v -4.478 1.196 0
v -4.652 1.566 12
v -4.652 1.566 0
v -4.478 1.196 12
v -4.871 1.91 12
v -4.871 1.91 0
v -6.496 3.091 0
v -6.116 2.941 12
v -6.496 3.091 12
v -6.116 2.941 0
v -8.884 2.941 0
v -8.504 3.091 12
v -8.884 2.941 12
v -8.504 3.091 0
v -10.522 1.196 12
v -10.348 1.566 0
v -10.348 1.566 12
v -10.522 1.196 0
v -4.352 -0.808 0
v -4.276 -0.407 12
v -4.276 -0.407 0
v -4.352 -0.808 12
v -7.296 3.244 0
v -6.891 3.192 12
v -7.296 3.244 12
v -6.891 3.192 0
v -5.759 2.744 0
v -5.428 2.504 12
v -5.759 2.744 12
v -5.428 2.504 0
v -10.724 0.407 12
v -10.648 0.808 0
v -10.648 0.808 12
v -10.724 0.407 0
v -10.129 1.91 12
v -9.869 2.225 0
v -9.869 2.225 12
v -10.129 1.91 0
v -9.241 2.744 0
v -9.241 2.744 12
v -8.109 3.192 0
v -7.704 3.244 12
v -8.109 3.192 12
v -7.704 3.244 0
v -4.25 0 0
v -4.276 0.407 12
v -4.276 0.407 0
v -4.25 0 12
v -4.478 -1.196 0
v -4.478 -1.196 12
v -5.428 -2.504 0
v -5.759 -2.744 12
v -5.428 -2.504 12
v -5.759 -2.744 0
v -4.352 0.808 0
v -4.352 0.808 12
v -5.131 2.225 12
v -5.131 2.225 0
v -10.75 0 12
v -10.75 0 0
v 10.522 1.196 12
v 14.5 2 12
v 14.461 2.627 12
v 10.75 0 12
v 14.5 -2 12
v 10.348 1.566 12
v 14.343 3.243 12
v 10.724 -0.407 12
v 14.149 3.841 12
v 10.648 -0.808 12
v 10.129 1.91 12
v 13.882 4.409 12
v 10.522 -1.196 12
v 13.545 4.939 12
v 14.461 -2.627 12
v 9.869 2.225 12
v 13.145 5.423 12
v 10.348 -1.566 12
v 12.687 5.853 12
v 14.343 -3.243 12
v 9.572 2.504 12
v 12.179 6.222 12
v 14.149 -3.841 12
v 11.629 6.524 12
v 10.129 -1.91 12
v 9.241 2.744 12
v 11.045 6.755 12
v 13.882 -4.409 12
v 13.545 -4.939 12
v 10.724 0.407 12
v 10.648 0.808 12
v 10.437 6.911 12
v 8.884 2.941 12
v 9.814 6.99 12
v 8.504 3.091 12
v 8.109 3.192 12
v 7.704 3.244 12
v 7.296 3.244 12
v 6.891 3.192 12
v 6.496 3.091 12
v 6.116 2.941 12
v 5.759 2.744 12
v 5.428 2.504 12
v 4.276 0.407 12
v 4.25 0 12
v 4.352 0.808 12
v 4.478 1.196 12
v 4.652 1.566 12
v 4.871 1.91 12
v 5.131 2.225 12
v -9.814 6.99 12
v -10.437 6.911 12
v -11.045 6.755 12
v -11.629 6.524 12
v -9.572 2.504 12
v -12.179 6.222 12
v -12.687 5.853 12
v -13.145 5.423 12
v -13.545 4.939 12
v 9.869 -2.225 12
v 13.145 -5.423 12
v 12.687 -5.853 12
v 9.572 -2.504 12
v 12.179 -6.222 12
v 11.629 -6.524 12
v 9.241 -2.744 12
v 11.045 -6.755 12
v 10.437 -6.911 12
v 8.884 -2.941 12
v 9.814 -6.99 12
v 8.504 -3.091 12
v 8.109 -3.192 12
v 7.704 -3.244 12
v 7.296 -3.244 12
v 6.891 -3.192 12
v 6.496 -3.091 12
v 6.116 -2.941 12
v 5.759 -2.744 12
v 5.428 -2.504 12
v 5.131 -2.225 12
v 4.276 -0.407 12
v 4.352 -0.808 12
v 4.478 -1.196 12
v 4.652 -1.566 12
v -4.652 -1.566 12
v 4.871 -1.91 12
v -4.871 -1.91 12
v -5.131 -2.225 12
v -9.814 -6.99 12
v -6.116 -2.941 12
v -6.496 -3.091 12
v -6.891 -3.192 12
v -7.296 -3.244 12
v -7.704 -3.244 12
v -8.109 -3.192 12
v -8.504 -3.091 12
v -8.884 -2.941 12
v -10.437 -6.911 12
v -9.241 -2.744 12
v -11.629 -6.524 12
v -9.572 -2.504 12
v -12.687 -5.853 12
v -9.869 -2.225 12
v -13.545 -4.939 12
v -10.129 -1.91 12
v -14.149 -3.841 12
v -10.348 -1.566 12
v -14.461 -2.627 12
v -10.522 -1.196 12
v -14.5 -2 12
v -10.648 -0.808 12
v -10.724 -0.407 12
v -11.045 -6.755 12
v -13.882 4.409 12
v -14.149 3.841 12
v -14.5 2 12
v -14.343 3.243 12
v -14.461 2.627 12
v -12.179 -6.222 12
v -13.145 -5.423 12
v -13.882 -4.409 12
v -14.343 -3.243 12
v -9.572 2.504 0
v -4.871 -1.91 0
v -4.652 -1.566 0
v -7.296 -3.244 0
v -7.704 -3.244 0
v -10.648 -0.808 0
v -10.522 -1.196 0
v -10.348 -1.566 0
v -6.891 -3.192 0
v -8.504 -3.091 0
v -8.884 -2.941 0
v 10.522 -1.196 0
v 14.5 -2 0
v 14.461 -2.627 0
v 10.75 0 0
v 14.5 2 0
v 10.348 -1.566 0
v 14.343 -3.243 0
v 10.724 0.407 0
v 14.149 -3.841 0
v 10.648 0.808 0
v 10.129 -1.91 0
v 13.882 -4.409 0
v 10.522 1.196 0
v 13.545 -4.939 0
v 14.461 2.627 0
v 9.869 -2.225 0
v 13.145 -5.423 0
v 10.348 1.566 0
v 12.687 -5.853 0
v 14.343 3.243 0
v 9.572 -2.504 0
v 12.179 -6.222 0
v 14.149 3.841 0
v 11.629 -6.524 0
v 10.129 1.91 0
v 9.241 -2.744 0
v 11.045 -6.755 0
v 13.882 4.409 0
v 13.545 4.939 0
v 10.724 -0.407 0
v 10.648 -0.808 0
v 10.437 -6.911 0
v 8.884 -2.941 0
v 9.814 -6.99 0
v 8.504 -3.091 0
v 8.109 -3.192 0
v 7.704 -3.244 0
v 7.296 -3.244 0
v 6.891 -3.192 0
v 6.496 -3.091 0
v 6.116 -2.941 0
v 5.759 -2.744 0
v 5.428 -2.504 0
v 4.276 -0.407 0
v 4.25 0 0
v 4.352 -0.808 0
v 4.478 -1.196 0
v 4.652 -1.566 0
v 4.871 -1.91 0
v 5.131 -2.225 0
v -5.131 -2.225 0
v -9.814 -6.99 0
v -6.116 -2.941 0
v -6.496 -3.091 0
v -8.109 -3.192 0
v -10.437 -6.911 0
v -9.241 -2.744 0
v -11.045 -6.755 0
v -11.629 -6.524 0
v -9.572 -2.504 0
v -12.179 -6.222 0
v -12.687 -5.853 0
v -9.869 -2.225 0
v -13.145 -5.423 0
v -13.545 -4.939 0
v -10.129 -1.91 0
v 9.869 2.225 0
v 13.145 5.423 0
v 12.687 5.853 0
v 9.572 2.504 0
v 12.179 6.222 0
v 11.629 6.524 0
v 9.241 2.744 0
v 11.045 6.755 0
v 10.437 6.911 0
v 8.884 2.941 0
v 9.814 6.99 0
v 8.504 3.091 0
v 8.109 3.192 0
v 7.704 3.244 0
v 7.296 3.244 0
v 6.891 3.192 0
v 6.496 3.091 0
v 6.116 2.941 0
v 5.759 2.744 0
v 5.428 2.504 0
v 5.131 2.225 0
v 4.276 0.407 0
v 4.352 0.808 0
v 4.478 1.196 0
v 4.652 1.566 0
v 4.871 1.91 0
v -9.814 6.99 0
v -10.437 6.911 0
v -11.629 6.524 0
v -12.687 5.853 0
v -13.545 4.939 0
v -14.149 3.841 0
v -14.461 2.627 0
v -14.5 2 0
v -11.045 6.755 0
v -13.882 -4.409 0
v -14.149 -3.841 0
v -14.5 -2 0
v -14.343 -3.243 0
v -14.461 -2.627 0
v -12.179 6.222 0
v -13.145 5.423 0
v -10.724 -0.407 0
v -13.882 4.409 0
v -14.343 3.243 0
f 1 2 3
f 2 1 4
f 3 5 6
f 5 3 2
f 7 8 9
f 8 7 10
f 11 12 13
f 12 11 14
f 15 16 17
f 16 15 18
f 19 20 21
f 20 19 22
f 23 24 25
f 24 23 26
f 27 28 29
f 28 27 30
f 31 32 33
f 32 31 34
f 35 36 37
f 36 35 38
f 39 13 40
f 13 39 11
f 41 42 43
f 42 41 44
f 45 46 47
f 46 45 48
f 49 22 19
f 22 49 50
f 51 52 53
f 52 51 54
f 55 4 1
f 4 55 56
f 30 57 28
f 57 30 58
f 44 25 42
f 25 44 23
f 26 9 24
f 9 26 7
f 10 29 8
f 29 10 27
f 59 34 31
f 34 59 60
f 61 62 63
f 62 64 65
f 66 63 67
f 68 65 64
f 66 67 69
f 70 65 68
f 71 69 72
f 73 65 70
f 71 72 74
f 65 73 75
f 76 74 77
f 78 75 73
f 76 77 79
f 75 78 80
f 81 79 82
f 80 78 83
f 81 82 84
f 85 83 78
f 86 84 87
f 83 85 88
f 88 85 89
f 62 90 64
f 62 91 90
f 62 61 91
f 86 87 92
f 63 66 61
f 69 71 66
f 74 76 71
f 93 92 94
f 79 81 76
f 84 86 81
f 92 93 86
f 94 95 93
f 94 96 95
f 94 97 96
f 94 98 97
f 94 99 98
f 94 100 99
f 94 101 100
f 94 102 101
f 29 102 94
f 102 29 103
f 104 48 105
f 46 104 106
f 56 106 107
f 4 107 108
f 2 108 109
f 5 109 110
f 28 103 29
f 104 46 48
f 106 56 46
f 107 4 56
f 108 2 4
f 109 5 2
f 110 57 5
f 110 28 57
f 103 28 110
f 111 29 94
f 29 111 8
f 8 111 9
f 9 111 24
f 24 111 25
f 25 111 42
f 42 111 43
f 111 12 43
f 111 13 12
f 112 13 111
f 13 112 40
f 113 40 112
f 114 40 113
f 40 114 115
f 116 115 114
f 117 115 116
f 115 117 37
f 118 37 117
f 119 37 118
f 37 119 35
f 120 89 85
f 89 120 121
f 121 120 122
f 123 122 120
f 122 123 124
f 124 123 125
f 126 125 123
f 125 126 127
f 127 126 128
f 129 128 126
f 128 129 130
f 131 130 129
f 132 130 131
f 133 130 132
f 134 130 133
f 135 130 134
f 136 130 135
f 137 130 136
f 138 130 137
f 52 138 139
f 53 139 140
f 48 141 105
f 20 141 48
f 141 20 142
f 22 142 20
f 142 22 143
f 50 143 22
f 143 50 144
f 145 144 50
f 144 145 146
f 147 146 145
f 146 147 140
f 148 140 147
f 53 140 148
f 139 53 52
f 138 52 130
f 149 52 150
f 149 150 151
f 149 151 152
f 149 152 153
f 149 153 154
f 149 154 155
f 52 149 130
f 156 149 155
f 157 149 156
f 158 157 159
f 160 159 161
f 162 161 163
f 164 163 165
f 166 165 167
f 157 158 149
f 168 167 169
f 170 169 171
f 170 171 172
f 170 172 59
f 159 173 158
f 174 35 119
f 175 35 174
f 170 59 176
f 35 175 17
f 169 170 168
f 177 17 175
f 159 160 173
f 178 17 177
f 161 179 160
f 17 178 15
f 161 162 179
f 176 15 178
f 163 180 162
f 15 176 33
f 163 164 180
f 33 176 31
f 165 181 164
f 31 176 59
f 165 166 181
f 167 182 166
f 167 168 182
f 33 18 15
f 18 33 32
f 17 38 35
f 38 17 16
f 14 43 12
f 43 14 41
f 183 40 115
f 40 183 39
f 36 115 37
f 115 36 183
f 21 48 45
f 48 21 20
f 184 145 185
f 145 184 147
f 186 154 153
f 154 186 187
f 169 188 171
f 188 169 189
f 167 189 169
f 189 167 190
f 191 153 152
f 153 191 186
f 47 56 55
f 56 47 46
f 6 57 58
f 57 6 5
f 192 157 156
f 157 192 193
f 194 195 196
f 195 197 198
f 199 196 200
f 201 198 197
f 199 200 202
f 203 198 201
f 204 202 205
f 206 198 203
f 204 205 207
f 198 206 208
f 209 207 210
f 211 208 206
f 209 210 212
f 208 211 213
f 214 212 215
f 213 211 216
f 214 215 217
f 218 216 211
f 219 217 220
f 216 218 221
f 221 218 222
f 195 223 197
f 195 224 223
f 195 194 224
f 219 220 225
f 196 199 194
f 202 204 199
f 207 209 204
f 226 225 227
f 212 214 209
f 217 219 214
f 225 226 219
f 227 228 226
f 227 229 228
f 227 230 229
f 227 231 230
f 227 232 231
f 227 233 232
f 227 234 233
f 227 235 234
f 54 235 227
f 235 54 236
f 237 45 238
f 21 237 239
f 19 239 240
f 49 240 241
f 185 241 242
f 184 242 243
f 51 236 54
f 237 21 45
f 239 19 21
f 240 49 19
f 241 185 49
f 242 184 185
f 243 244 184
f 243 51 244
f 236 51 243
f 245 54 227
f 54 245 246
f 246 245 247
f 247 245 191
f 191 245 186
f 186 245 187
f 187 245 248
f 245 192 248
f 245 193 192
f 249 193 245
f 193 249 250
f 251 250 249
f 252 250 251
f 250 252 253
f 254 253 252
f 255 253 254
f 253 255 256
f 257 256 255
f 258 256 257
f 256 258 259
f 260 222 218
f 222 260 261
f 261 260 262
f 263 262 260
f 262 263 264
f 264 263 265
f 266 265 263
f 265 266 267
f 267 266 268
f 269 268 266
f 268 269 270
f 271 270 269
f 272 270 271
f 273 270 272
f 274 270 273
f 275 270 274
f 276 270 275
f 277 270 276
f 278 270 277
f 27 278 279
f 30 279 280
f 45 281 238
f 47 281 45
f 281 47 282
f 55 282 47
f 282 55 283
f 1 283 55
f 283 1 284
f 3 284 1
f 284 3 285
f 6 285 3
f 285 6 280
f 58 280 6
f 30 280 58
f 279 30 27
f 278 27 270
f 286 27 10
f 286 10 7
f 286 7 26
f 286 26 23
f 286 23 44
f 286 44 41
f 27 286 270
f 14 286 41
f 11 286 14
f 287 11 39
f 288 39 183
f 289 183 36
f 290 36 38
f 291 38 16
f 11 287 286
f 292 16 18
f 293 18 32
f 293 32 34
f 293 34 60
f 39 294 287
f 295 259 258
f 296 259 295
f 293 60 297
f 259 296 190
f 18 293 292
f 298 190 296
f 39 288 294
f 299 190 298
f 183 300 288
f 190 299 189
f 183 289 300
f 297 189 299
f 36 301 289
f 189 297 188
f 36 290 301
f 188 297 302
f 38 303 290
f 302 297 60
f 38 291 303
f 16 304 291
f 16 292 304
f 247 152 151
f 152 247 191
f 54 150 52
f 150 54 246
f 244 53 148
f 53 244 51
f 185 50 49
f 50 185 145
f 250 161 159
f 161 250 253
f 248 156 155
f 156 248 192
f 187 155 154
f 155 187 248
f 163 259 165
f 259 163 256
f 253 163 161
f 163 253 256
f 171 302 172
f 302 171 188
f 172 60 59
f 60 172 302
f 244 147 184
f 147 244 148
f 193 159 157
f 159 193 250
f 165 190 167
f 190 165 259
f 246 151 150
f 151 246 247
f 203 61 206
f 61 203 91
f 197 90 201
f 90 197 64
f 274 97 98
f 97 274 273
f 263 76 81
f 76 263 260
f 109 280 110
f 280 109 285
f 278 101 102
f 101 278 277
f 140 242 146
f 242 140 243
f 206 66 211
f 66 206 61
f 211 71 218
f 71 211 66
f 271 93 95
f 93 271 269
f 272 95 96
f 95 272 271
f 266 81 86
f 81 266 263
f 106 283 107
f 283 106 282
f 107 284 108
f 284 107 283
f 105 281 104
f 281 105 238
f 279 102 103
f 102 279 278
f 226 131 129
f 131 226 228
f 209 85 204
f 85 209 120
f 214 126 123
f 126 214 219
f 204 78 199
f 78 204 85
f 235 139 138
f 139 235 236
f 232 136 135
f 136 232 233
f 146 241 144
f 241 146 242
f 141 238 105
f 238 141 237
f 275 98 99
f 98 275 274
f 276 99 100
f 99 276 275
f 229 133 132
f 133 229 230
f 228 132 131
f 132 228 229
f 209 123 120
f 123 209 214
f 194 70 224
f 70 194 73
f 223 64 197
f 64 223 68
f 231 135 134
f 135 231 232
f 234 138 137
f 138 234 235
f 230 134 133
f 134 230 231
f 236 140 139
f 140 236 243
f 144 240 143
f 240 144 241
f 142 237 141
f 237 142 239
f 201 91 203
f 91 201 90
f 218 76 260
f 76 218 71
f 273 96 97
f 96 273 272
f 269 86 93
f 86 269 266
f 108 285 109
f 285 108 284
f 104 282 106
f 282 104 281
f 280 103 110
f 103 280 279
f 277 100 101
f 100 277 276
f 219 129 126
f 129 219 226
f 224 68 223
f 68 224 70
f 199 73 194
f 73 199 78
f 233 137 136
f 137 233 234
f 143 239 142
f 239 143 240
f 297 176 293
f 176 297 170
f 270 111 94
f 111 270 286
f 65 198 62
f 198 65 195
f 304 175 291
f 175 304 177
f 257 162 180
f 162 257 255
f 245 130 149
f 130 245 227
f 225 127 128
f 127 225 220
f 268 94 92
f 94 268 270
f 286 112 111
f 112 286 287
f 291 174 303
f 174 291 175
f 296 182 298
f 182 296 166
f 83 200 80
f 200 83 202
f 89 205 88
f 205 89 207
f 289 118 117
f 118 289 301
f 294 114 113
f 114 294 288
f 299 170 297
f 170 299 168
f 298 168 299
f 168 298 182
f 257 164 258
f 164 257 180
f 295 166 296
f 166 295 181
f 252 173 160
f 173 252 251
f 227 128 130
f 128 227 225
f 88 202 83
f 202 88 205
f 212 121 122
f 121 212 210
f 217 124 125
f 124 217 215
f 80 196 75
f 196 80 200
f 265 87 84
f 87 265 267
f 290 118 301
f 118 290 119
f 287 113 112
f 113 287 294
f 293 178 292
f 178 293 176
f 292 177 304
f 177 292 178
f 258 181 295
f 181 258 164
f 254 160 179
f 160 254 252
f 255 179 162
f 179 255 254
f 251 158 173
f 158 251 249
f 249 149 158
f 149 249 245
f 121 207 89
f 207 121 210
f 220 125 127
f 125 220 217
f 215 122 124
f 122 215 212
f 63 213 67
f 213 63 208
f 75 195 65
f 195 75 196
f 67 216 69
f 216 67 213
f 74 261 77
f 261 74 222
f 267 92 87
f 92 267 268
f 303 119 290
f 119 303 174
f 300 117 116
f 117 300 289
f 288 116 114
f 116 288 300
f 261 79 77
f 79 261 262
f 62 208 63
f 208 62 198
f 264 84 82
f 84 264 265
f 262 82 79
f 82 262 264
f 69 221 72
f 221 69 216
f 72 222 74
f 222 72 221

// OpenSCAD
$fn = 50;


difference() {
	union() {
		hull() {
			translate(v = [-9.5000000000, 2.0000000000, 0]) {
				cylinder(h = 12, r = 5);
			}
			translate(v = [9.5000000000, 2.0000000000, 0]) {
				cylinder(h = 12, r = 5);
			}
			translate(v = [-9.5000000000, -2.0000000000, 0]) {
				cylinder(h = 12, r = 5);
			}
			translate(v = [9.5000000000, -2.0000000000, 0]) {
				cylinder(h = 12, r = 5);
			}
		}
	}
	union() {
		translate(v = [-7.5000000000, 0.0000000000, 0]) {
			translate(v = [0, 0, -100]) {
				cylinder(h = 200, r = 3.2500000000);
			}
		}
		translate(v = [7.5000000000, 0.0000000000, 0]) {
			translate(v = [0, 0, -100]) {
				cylinder(h = 200, r = 3.2500000000);
			}
		}
	}
}
